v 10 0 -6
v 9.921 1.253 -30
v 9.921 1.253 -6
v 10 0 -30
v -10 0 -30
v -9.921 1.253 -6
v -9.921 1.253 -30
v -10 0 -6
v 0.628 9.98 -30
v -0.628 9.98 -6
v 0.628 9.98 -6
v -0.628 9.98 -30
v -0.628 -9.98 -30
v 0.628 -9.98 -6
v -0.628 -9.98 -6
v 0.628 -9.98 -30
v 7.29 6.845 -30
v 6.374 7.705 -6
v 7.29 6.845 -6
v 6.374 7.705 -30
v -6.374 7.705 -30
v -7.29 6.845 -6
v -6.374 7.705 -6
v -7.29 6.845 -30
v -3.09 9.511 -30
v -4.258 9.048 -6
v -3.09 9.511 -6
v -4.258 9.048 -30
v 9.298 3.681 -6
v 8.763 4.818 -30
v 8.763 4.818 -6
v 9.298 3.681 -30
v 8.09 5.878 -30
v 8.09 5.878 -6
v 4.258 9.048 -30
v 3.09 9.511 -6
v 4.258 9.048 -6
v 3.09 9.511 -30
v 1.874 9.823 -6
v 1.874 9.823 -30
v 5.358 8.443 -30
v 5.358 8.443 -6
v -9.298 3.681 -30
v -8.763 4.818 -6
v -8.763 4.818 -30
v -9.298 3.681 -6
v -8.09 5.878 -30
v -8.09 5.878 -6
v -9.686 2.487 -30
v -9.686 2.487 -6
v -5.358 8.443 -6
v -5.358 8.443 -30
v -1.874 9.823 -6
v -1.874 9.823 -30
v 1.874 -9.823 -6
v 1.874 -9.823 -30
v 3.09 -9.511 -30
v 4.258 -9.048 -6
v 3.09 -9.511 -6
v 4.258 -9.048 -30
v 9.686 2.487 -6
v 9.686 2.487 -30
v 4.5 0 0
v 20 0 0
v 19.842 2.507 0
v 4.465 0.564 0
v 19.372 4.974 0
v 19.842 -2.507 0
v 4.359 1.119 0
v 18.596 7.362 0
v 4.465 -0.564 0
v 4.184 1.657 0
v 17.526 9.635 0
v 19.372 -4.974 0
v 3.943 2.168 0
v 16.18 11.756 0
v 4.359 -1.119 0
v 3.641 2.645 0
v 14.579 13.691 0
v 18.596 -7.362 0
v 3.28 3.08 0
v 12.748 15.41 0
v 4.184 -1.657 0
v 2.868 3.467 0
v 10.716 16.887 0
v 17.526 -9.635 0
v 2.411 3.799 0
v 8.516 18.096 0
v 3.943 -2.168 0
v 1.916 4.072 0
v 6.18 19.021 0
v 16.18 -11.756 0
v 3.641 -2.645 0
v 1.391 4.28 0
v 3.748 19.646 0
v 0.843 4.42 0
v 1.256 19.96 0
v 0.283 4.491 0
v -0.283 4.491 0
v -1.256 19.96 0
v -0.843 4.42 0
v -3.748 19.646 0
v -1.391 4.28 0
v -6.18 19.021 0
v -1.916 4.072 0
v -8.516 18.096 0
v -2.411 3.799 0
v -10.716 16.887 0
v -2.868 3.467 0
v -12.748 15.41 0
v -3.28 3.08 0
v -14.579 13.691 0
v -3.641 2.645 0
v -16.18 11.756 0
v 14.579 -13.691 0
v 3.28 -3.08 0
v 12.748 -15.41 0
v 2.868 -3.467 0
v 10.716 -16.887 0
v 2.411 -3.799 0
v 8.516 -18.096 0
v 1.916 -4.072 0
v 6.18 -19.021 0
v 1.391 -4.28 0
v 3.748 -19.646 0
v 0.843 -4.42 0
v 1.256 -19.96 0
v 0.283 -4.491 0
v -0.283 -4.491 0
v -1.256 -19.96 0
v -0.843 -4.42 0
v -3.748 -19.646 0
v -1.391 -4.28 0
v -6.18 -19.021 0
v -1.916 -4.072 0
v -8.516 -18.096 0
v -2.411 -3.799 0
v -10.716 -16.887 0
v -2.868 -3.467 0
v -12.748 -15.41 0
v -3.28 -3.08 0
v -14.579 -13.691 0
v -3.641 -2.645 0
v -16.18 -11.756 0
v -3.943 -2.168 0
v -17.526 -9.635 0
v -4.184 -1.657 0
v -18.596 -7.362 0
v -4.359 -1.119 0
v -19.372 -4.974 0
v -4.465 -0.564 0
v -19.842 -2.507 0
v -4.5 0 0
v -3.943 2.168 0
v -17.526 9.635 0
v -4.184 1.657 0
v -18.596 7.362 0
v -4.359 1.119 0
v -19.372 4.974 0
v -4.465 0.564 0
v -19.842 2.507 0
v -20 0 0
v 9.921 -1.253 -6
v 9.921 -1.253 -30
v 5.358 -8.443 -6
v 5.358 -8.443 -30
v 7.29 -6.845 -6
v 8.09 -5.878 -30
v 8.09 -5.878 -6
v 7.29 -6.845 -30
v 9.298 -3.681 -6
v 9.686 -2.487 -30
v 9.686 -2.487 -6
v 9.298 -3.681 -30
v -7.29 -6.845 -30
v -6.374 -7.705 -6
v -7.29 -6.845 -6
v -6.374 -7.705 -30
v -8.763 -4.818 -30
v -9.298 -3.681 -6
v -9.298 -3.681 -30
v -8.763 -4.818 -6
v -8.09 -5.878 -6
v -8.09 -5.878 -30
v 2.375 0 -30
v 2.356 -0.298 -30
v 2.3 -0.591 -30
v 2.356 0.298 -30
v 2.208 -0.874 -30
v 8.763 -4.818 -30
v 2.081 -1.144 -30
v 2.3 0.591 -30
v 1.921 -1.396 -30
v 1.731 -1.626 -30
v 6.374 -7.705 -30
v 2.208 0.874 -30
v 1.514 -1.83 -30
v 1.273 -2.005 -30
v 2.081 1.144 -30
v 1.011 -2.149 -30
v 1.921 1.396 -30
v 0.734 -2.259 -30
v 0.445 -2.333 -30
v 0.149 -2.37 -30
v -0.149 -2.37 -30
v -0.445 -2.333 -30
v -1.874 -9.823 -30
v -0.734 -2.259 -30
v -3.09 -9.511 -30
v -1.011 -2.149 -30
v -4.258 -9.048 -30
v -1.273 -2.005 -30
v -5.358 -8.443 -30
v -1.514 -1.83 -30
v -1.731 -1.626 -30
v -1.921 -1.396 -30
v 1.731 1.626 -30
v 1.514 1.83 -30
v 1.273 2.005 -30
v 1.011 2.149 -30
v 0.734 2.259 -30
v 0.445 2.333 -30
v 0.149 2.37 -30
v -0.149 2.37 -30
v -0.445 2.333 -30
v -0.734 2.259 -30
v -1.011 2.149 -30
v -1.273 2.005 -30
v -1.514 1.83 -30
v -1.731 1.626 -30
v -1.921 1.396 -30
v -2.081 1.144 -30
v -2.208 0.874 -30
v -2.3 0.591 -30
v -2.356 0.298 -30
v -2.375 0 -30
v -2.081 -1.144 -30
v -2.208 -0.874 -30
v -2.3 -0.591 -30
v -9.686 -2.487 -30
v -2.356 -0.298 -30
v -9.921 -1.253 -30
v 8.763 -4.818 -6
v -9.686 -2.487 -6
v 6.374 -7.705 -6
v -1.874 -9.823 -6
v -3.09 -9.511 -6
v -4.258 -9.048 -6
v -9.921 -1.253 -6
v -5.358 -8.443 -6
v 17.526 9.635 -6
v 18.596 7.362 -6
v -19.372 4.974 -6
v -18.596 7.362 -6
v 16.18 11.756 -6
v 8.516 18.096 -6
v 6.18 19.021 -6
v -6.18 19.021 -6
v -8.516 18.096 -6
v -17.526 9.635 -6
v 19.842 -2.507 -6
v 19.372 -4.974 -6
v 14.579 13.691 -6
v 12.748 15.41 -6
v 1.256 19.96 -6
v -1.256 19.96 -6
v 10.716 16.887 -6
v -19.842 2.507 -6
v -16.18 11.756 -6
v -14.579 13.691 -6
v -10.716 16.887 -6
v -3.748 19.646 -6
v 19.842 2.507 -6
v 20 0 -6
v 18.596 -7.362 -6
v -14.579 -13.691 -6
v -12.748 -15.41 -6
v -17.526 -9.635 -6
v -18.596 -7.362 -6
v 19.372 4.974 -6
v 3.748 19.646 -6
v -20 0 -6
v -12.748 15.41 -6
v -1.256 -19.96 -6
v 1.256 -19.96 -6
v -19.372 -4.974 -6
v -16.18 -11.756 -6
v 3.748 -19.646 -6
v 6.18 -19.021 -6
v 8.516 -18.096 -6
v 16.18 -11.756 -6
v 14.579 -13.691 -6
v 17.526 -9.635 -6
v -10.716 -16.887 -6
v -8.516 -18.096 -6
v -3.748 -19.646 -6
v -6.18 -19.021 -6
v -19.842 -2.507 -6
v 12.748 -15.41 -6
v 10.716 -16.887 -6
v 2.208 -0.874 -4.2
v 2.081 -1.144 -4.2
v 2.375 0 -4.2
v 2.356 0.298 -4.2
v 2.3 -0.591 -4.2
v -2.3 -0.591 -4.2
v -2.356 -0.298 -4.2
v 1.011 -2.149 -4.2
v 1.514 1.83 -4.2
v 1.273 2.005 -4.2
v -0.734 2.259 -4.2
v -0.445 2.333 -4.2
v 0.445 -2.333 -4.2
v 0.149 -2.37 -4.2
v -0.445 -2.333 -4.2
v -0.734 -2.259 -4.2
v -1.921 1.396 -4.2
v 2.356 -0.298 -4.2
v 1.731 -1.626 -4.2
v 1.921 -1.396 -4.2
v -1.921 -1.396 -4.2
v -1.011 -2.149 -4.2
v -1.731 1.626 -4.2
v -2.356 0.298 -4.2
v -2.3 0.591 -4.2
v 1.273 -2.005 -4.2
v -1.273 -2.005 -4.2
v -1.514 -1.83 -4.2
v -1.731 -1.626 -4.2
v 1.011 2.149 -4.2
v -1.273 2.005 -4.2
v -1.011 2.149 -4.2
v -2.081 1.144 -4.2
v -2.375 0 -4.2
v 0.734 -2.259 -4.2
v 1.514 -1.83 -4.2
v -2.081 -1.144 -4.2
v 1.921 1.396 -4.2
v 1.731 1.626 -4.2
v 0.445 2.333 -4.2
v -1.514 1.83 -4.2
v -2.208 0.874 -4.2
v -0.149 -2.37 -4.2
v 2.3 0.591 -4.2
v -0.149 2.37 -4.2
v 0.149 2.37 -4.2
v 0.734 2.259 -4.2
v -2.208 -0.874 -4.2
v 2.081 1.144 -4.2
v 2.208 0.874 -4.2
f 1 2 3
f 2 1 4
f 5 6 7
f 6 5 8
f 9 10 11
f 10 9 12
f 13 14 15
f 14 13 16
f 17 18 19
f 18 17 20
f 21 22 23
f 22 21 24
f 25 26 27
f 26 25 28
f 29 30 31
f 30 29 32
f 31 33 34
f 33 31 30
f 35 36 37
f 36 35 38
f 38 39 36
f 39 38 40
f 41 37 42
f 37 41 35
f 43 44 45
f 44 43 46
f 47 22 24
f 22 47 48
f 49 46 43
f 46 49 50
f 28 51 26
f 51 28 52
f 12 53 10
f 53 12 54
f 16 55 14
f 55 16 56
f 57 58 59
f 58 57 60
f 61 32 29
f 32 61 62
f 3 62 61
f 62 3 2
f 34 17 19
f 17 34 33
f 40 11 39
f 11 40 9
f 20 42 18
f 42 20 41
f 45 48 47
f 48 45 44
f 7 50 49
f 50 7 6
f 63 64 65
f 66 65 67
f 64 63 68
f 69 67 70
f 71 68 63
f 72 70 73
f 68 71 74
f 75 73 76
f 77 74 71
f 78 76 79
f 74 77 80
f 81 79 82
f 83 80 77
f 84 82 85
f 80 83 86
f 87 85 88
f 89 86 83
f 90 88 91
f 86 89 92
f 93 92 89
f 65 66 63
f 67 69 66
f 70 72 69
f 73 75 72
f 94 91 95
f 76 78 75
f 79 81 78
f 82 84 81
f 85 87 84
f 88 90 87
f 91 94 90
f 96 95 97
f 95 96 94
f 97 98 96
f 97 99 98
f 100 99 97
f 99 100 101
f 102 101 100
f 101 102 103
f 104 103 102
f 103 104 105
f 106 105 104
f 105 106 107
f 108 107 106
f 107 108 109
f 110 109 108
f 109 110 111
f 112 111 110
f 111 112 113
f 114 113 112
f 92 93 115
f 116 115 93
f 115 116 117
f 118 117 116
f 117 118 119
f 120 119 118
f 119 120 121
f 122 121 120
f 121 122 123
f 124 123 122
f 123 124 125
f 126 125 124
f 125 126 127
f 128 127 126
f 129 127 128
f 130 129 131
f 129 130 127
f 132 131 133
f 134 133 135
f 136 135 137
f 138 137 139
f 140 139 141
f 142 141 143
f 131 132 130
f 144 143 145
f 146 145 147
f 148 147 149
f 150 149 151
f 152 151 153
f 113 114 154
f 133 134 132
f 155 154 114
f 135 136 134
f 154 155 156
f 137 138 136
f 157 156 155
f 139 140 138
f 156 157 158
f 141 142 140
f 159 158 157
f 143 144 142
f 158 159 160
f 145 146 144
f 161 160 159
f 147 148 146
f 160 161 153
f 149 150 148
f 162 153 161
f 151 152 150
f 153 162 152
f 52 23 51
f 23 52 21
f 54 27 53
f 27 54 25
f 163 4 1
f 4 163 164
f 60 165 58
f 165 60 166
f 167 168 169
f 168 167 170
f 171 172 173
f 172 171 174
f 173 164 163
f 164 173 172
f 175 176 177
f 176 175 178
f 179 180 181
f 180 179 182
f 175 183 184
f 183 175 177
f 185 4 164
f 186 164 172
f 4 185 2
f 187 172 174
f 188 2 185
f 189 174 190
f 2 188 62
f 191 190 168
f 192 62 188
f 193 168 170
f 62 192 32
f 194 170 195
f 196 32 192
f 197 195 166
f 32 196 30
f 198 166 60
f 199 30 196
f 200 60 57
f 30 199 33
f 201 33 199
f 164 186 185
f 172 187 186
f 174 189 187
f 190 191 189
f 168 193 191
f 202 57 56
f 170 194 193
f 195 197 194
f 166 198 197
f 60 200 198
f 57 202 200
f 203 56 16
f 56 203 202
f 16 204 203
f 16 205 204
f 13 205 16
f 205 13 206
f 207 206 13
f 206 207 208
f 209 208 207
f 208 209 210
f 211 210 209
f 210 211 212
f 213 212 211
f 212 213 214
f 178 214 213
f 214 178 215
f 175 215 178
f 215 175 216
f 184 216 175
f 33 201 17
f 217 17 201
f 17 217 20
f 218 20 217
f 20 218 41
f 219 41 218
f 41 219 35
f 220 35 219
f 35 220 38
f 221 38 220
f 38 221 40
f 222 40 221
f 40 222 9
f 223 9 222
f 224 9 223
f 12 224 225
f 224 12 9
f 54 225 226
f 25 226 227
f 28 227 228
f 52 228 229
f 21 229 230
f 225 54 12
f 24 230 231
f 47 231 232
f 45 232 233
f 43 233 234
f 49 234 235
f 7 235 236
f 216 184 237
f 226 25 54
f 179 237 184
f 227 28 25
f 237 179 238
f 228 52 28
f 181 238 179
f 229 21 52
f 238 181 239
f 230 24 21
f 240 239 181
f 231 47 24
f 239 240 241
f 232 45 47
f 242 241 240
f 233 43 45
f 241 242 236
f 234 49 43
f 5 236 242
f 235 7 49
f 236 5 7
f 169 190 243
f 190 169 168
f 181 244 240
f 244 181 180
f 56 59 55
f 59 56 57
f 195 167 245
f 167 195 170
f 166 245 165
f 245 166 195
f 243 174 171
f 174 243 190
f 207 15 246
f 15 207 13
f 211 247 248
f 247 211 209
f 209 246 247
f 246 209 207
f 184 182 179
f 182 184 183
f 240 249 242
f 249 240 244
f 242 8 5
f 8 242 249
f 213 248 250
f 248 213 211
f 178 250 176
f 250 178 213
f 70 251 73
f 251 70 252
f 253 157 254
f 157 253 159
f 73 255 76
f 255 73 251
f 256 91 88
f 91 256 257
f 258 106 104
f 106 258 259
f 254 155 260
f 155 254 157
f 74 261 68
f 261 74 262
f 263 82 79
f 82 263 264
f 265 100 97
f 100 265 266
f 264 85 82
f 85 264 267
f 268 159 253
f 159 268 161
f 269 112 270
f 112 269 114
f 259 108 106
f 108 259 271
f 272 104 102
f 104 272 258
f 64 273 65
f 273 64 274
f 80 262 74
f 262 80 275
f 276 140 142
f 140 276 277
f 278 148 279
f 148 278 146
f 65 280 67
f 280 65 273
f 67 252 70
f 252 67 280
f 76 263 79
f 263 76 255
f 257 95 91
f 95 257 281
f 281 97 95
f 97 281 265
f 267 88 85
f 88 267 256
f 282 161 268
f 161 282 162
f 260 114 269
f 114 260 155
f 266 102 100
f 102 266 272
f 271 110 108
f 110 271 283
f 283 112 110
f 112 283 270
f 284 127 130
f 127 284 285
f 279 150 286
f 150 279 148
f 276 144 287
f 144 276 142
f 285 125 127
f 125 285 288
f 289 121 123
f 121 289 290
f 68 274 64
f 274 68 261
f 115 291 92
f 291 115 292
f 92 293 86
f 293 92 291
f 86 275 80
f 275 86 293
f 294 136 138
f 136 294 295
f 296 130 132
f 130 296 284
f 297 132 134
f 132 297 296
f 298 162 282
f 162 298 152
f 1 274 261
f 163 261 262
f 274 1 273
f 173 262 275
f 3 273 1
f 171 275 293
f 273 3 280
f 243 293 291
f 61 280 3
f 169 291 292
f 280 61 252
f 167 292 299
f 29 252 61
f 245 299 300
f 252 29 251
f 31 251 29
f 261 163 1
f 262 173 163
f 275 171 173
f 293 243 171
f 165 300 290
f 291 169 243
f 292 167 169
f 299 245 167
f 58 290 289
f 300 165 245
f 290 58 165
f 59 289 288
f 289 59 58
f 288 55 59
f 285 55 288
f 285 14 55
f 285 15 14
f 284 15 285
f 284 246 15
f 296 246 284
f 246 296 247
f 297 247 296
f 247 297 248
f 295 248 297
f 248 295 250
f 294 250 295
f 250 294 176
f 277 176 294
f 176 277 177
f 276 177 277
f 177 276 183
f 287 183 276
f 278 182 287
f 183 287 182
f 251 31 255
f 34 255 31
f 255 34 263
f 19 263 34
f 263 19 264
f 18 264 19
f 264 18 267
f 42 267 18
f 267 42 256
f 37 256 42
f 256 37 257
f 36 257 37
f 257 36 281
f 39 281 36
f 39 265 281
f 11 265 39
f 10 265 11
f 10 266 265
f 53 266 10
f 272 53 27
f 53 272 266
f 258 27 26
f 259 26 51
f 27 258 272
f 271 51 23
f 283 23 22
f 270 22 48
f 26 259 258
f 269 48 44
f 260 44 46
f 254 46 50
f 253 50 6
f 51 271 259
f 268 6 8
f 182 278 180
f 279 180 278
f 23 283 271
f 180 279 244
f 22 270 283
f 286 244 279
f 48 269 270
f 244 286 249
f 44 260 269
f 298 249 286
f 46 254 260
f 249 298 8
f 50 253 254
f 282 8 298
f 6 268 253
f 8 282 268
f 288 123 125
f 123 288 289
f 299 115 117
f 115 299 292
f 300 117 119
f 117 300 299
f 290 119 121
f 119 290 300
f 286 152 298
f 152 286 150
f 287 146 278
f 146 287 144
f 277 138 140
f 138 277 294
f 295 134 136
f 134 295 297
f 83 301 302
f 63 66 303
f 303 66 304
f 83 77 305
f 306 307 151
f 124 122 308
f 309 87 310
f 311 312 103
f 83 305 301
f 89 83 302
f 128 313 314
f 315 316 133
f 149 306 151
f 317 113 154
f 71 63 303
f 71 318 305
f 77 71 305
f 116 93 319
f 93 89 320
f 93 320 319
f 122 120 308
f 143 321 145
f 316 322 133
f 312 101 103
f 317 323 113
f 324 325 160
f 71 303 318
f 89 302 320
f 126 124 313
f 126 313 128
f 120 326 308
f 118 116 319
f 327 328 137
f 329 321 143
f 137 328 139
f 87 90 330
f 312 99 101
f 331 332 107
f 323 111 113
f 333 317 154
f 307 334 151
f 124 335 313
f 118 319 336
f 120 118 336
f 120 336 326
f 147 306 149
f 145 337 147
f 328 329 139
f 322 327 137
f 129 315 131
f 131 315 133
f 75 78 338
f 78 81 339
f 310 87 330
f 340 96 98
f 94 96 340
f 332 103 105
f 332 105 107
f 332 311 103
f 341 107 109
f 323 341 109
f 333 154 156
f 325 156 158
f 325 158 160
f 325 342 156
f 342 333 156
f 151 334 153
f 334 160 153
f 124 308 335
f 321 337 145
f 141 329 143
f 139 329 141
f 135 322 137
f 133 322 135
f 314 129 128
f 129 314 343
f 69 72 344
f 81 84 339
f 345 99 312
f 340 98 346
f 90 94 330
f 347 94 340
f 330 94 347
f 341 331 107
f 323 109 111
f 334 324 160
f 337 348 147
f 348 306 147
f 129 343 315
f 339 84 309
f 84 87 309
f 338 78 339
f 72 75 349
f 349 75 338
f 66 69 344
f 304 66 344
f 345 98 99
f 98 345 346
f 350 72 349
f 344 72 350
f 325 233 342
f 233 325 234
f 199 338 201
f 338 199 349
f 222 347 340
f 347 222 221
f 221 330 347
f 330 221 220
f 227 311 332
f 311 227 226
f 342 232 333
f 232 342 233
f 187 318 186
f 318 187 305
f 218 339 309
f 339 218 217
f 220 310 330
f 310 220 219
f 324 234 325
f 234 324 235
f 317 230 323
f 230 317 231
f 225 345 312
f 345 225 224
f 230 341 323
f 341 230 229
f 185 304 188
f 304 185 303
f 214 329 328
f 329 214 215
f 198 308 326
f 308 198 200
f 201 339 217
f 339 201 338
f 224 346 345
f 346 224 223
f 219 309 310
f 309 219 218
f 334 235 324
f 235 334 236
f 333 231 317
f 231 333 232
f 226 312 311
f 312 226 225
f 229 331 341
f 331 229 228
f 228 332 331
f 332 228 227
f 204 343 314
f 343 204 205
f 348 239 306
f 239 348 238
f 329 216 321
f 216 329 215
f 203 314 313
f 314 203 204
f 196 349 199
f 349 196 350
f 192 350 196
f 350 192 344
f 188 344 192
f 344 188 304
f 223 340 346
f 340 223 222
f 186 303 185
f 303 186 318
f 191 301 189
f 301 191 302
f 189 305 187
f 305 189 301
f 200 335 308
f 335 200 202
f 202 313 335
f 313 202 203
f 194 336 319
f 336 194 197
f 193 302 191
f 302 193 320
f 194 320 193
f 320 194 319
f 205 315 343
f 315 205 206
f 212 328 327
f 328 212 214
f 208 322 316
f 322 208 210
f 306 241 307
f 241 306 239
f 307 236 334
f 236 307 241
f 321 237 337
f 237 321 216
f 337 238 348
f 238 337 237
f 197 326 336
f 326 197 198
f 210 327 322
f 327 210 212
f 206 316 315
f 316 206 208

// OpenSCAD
$fn = 50;


difference() {
	union() {
		translate(v = [0, 0, -30.0000000000]) {
			cylinder(h = 30, r = 10.0000000000);
		}
		translate(v = [0, 0, -6.0000000000]) {
			cylinder(h = 6, r = 20.0000000000);
		}
	}
	union() {
		translate(v = [0, 0, 0]) {
			rotate(a = [0, 0, 0]) {
				difference() {
					union() {
						#translate(v = [0, 0, -30.0000000000]) {
							cylinder(h = 30, r = 2.2500000000);
						}
						#translate(v = [0, 0, -4.2000000000]) {
							cylinder(h = 4.2000000000, r = 10.0000000000, r1 = 2.3750000000, r2 = 4.5000000000);
						}
						#translate(v = [0, 0, -30.0000000000]) {
							cylinder(h = 30, r = 2.3750000000);
						}
						#translate(v = [0, 0, -30.0000000000]) {
							cylinder(h = 30, r = 2.2500000000);
						}
					}
					union();
				}
			}
		}
	}
}
